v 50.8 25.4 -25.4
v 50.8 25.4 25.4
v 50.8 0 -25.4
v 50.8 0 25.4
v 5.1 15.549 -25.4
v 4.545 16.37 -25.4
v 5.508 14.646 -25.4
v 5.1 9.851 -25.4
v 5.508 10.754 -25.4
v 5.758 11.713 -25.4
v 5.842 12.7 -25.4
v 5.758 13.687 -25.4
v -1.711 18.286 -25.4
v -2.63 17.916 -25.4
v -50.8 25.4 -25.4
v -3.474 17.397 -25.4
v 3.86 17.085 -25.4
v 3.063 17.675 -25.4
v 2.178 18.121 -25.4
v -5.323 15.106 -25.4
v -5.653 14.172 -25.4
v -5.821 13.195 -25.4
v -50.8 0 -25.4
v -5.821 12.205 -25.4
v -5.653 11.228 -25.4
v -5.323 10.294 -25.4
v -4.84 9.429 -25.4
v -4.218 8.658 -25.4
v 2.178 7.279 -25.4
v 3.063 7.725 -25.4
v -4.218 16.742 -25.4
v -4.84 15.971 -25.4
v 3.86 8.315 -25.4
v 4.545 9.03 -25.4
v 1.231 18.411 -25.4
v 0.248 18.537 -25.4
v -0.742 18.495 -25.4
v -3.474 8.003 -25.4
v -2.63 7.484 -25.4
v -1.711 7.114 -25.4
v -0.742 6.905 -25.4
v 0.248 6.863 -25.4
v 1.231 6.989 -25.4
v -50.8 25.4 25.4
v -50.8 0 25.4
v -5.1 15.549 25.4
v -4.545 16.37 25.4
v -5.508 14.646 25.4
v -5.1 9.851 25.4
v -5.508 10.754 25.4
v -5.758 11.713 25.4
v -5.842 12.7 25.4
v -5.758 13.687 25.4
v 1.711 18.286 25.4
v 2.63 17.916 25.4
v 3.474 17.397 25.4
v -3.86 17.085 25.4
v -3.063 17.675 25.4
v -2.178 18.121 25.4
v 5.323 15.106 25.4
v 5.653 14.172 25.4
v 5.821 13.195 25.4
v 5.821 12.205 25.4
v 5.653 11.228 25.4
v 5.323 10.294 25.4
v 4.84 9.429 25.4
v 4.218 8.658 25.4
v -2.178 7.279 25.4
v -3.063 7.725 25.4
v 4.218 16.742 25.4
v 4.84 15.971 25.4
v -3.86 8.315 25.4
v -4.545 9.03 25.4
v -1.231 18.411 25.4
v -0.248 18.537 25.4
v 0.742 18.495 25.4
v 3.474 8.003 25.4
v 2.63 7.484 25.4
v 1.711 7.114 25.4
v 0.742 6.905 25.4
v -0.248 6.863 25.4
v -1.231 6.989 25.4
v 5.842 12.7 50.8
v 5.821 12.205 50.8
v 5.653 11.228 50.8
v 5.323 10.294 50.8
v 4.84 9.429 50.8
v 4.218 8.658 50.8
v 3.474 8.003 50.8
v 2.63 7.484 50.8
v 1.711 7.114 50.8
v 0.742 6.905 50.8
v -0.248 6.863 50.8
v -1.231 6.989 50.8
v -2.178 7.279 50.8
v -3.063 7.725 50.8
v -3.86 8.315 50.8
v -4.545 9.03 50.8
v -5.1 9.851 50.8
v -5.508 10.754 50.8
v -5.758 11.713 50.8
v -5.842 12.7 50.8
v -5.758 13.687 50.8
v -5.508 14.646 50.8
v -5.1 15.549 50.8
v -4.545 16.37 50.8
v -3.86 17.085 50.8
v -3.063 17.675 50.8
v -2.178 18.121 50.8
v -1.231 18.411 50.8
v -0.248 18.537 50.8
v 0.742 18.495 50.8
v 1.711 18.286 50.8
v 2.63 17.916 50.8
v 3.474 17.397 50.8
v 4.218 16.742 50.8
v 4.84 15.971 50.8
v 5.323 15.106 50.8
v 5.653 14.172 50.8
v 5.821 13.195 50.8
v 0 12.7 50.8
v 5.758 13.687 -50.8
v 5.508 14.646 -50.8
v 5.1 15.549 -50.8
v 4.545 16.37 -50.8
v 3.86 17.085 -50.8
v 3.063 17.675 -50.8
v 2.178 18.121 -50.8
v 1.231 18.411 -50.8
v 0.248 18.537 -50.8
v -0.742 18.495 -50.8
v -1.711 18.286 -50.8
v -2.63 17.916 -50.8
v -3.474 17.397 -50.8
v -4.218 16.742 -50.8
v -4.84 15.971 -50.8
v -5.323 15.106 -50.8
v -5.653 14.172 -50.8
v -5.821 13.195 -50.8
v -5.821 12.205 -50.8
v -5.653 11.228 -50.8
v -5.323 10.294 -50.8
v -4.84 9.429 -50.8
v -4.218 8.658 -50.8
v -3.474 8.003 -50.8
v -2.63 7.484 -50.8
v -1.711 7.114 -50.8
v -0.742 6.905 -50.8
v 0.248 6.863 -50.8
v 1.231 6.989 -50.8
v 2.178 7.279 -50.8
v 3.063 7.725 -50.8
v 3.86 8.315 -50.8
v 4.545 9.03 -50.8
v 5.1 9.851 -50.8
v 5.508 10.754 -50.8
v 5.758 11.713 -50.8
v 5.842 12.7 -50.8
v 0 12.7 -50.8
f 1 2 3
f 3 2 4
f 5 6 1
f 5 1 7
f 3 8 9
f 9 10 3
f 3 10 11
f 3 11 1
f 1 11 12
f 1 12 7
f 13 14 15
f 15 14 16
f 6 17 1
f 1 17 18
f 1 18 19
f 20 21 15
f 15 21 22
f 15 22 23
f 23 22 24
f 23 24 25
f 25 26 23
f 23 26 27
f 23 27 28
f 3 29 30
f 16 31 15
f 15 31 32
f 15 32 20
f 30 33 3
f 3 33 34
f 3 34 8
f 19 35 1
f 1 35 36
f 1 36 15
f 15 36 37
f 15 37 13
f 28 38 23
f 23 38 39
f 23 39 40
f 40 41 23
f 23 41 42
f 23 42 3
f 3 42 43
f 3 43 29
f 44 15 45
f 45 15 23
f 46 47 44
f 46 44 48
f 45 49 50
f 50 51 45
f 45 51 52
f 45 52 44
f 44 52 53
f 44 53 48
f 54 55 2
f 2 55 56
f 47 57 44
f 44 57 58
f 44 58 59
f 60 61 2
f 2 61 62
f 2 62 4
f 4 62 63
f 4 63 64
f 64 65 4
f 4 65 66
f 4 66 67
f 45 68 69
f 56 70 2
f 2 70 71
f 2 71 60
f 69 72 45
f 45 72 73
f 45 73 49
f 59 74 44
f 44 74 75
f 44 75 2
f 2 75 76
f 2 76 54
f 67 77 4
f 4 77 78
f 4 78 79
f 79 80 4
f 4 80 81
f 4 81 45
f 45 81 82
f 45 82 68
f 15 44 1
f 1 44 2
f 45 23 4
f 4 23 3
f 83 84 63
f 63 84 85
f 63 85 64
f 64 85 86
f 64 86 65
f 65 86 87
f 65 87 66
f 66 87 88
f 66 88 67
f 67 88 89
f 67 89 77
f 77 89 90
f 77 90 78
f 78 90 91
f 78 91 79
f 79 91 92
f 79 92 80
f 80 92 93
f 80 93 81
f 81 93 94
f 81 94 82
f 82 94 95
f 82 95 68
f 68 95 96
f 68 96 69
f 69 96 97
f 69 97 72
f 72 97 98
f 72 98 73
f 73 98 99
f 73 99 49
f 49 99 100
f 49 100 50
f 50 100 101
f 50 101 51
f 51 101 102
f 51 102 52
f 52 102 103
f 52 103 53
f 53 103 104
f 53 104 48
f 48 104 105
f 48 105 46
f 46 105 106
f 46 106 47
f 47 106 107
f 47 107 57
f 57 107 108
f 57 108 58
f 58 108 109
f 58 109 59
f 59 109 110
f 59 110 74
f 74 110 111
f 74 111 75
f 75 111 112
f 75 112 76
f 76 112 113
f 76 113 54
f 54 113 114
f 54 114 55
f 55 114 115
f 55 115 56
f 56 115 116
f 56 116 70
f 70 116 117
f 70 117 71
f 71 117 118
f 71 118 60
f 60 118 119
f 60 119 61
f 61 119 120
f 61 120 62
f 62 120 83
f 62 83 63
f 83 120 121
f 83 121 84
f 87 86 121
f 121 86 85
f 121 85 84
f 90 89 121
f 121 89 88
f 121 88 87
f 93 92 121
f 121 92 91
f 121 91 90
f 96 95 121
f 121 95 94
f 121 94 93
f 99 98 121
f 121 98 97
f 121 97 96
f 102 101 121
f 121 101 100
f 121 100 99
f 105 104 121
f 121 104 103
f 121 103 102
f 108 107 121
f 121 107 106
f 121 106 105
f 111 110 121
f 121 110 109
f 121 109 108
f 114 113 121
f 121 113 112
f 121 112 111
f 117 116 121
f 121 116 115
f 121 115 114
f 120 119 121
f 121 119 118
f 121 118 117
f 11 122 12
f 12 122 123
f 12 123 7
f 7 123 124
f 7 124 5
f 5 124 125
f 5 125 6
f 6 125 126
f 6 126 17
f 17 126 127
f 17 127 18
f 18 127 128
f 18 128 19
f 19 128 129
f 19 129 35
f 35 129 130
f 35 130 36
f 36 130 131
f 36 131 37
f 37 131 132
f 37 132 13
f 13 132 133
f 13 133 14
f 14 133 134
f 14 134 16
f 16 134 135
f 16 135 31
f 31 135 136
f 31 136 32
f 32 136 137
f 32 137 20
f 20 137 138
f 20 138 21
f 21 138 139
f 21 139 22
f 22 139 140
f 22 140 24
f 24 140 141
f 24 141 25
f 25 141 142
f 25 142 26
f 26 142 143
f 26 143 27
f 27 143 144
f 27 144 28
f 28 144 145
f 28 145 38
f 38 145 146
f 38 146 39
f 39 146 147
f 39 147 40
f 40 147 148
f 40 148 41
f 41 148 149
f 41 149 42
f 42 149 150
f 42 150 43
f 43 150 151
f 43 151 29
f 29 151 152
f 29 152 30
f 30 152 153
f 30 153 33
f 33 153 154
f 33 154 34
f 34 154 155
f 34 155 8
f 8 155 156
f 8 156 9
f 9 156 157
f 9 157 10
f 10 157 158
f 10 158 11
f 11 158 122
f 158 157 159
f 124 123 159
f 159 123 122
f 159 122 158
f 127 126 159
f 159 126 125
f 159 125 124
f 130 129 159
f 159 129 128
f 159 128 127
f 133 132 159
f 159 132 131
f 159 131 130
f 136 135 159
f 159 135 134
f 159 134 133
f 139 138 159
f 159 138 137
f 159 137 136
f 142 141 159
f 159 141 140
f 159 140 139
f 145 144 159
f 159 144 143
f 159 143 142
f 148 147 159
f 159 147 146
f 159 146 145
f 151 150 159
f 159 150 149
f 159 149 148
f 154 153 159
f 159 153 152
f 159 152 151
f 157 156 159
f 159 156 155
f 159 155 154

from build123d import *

# Parameters (mm, degrees)
SKETCH1_W           = 101.6
SKETCH1_H           = 50.8
BOSS_EXTRUDE1_DEPTH = 25.4
SKETCH2_R           = 5.842
BOSS_EXTRUDE2_DEPTH = 25.4


with BuildPart() as part:
    # Sketch1 → Boss-Extrude1 (new body)
    with BuildSketch(Plane(origin=(0, 0, 0), x_dir=(1, 0, 0), z_dir=(0, 1, 0))):
        Rectangle(SKETCH1_W, SKETCH1_H)
    extrude(amount=BOSS_EXTRUDE1_DEPTH)

    # Sketch2 → Boss-Extrude2 (add)
    with BuildSketch(Plane.XY.offset(25.4)):
        with Locations(Location((0, 12.7, 0), (0, 0, 180))):
            Circle(SKETCH2_R)
    boss_extrude2 = extrude(amount=BOSS_EXTRUDE2_DEPTH)

    # Mirror1: Boss-Extrude2 across plane
    add(boss_extrude2.mirror(Plane.XY))


solid = part.part
